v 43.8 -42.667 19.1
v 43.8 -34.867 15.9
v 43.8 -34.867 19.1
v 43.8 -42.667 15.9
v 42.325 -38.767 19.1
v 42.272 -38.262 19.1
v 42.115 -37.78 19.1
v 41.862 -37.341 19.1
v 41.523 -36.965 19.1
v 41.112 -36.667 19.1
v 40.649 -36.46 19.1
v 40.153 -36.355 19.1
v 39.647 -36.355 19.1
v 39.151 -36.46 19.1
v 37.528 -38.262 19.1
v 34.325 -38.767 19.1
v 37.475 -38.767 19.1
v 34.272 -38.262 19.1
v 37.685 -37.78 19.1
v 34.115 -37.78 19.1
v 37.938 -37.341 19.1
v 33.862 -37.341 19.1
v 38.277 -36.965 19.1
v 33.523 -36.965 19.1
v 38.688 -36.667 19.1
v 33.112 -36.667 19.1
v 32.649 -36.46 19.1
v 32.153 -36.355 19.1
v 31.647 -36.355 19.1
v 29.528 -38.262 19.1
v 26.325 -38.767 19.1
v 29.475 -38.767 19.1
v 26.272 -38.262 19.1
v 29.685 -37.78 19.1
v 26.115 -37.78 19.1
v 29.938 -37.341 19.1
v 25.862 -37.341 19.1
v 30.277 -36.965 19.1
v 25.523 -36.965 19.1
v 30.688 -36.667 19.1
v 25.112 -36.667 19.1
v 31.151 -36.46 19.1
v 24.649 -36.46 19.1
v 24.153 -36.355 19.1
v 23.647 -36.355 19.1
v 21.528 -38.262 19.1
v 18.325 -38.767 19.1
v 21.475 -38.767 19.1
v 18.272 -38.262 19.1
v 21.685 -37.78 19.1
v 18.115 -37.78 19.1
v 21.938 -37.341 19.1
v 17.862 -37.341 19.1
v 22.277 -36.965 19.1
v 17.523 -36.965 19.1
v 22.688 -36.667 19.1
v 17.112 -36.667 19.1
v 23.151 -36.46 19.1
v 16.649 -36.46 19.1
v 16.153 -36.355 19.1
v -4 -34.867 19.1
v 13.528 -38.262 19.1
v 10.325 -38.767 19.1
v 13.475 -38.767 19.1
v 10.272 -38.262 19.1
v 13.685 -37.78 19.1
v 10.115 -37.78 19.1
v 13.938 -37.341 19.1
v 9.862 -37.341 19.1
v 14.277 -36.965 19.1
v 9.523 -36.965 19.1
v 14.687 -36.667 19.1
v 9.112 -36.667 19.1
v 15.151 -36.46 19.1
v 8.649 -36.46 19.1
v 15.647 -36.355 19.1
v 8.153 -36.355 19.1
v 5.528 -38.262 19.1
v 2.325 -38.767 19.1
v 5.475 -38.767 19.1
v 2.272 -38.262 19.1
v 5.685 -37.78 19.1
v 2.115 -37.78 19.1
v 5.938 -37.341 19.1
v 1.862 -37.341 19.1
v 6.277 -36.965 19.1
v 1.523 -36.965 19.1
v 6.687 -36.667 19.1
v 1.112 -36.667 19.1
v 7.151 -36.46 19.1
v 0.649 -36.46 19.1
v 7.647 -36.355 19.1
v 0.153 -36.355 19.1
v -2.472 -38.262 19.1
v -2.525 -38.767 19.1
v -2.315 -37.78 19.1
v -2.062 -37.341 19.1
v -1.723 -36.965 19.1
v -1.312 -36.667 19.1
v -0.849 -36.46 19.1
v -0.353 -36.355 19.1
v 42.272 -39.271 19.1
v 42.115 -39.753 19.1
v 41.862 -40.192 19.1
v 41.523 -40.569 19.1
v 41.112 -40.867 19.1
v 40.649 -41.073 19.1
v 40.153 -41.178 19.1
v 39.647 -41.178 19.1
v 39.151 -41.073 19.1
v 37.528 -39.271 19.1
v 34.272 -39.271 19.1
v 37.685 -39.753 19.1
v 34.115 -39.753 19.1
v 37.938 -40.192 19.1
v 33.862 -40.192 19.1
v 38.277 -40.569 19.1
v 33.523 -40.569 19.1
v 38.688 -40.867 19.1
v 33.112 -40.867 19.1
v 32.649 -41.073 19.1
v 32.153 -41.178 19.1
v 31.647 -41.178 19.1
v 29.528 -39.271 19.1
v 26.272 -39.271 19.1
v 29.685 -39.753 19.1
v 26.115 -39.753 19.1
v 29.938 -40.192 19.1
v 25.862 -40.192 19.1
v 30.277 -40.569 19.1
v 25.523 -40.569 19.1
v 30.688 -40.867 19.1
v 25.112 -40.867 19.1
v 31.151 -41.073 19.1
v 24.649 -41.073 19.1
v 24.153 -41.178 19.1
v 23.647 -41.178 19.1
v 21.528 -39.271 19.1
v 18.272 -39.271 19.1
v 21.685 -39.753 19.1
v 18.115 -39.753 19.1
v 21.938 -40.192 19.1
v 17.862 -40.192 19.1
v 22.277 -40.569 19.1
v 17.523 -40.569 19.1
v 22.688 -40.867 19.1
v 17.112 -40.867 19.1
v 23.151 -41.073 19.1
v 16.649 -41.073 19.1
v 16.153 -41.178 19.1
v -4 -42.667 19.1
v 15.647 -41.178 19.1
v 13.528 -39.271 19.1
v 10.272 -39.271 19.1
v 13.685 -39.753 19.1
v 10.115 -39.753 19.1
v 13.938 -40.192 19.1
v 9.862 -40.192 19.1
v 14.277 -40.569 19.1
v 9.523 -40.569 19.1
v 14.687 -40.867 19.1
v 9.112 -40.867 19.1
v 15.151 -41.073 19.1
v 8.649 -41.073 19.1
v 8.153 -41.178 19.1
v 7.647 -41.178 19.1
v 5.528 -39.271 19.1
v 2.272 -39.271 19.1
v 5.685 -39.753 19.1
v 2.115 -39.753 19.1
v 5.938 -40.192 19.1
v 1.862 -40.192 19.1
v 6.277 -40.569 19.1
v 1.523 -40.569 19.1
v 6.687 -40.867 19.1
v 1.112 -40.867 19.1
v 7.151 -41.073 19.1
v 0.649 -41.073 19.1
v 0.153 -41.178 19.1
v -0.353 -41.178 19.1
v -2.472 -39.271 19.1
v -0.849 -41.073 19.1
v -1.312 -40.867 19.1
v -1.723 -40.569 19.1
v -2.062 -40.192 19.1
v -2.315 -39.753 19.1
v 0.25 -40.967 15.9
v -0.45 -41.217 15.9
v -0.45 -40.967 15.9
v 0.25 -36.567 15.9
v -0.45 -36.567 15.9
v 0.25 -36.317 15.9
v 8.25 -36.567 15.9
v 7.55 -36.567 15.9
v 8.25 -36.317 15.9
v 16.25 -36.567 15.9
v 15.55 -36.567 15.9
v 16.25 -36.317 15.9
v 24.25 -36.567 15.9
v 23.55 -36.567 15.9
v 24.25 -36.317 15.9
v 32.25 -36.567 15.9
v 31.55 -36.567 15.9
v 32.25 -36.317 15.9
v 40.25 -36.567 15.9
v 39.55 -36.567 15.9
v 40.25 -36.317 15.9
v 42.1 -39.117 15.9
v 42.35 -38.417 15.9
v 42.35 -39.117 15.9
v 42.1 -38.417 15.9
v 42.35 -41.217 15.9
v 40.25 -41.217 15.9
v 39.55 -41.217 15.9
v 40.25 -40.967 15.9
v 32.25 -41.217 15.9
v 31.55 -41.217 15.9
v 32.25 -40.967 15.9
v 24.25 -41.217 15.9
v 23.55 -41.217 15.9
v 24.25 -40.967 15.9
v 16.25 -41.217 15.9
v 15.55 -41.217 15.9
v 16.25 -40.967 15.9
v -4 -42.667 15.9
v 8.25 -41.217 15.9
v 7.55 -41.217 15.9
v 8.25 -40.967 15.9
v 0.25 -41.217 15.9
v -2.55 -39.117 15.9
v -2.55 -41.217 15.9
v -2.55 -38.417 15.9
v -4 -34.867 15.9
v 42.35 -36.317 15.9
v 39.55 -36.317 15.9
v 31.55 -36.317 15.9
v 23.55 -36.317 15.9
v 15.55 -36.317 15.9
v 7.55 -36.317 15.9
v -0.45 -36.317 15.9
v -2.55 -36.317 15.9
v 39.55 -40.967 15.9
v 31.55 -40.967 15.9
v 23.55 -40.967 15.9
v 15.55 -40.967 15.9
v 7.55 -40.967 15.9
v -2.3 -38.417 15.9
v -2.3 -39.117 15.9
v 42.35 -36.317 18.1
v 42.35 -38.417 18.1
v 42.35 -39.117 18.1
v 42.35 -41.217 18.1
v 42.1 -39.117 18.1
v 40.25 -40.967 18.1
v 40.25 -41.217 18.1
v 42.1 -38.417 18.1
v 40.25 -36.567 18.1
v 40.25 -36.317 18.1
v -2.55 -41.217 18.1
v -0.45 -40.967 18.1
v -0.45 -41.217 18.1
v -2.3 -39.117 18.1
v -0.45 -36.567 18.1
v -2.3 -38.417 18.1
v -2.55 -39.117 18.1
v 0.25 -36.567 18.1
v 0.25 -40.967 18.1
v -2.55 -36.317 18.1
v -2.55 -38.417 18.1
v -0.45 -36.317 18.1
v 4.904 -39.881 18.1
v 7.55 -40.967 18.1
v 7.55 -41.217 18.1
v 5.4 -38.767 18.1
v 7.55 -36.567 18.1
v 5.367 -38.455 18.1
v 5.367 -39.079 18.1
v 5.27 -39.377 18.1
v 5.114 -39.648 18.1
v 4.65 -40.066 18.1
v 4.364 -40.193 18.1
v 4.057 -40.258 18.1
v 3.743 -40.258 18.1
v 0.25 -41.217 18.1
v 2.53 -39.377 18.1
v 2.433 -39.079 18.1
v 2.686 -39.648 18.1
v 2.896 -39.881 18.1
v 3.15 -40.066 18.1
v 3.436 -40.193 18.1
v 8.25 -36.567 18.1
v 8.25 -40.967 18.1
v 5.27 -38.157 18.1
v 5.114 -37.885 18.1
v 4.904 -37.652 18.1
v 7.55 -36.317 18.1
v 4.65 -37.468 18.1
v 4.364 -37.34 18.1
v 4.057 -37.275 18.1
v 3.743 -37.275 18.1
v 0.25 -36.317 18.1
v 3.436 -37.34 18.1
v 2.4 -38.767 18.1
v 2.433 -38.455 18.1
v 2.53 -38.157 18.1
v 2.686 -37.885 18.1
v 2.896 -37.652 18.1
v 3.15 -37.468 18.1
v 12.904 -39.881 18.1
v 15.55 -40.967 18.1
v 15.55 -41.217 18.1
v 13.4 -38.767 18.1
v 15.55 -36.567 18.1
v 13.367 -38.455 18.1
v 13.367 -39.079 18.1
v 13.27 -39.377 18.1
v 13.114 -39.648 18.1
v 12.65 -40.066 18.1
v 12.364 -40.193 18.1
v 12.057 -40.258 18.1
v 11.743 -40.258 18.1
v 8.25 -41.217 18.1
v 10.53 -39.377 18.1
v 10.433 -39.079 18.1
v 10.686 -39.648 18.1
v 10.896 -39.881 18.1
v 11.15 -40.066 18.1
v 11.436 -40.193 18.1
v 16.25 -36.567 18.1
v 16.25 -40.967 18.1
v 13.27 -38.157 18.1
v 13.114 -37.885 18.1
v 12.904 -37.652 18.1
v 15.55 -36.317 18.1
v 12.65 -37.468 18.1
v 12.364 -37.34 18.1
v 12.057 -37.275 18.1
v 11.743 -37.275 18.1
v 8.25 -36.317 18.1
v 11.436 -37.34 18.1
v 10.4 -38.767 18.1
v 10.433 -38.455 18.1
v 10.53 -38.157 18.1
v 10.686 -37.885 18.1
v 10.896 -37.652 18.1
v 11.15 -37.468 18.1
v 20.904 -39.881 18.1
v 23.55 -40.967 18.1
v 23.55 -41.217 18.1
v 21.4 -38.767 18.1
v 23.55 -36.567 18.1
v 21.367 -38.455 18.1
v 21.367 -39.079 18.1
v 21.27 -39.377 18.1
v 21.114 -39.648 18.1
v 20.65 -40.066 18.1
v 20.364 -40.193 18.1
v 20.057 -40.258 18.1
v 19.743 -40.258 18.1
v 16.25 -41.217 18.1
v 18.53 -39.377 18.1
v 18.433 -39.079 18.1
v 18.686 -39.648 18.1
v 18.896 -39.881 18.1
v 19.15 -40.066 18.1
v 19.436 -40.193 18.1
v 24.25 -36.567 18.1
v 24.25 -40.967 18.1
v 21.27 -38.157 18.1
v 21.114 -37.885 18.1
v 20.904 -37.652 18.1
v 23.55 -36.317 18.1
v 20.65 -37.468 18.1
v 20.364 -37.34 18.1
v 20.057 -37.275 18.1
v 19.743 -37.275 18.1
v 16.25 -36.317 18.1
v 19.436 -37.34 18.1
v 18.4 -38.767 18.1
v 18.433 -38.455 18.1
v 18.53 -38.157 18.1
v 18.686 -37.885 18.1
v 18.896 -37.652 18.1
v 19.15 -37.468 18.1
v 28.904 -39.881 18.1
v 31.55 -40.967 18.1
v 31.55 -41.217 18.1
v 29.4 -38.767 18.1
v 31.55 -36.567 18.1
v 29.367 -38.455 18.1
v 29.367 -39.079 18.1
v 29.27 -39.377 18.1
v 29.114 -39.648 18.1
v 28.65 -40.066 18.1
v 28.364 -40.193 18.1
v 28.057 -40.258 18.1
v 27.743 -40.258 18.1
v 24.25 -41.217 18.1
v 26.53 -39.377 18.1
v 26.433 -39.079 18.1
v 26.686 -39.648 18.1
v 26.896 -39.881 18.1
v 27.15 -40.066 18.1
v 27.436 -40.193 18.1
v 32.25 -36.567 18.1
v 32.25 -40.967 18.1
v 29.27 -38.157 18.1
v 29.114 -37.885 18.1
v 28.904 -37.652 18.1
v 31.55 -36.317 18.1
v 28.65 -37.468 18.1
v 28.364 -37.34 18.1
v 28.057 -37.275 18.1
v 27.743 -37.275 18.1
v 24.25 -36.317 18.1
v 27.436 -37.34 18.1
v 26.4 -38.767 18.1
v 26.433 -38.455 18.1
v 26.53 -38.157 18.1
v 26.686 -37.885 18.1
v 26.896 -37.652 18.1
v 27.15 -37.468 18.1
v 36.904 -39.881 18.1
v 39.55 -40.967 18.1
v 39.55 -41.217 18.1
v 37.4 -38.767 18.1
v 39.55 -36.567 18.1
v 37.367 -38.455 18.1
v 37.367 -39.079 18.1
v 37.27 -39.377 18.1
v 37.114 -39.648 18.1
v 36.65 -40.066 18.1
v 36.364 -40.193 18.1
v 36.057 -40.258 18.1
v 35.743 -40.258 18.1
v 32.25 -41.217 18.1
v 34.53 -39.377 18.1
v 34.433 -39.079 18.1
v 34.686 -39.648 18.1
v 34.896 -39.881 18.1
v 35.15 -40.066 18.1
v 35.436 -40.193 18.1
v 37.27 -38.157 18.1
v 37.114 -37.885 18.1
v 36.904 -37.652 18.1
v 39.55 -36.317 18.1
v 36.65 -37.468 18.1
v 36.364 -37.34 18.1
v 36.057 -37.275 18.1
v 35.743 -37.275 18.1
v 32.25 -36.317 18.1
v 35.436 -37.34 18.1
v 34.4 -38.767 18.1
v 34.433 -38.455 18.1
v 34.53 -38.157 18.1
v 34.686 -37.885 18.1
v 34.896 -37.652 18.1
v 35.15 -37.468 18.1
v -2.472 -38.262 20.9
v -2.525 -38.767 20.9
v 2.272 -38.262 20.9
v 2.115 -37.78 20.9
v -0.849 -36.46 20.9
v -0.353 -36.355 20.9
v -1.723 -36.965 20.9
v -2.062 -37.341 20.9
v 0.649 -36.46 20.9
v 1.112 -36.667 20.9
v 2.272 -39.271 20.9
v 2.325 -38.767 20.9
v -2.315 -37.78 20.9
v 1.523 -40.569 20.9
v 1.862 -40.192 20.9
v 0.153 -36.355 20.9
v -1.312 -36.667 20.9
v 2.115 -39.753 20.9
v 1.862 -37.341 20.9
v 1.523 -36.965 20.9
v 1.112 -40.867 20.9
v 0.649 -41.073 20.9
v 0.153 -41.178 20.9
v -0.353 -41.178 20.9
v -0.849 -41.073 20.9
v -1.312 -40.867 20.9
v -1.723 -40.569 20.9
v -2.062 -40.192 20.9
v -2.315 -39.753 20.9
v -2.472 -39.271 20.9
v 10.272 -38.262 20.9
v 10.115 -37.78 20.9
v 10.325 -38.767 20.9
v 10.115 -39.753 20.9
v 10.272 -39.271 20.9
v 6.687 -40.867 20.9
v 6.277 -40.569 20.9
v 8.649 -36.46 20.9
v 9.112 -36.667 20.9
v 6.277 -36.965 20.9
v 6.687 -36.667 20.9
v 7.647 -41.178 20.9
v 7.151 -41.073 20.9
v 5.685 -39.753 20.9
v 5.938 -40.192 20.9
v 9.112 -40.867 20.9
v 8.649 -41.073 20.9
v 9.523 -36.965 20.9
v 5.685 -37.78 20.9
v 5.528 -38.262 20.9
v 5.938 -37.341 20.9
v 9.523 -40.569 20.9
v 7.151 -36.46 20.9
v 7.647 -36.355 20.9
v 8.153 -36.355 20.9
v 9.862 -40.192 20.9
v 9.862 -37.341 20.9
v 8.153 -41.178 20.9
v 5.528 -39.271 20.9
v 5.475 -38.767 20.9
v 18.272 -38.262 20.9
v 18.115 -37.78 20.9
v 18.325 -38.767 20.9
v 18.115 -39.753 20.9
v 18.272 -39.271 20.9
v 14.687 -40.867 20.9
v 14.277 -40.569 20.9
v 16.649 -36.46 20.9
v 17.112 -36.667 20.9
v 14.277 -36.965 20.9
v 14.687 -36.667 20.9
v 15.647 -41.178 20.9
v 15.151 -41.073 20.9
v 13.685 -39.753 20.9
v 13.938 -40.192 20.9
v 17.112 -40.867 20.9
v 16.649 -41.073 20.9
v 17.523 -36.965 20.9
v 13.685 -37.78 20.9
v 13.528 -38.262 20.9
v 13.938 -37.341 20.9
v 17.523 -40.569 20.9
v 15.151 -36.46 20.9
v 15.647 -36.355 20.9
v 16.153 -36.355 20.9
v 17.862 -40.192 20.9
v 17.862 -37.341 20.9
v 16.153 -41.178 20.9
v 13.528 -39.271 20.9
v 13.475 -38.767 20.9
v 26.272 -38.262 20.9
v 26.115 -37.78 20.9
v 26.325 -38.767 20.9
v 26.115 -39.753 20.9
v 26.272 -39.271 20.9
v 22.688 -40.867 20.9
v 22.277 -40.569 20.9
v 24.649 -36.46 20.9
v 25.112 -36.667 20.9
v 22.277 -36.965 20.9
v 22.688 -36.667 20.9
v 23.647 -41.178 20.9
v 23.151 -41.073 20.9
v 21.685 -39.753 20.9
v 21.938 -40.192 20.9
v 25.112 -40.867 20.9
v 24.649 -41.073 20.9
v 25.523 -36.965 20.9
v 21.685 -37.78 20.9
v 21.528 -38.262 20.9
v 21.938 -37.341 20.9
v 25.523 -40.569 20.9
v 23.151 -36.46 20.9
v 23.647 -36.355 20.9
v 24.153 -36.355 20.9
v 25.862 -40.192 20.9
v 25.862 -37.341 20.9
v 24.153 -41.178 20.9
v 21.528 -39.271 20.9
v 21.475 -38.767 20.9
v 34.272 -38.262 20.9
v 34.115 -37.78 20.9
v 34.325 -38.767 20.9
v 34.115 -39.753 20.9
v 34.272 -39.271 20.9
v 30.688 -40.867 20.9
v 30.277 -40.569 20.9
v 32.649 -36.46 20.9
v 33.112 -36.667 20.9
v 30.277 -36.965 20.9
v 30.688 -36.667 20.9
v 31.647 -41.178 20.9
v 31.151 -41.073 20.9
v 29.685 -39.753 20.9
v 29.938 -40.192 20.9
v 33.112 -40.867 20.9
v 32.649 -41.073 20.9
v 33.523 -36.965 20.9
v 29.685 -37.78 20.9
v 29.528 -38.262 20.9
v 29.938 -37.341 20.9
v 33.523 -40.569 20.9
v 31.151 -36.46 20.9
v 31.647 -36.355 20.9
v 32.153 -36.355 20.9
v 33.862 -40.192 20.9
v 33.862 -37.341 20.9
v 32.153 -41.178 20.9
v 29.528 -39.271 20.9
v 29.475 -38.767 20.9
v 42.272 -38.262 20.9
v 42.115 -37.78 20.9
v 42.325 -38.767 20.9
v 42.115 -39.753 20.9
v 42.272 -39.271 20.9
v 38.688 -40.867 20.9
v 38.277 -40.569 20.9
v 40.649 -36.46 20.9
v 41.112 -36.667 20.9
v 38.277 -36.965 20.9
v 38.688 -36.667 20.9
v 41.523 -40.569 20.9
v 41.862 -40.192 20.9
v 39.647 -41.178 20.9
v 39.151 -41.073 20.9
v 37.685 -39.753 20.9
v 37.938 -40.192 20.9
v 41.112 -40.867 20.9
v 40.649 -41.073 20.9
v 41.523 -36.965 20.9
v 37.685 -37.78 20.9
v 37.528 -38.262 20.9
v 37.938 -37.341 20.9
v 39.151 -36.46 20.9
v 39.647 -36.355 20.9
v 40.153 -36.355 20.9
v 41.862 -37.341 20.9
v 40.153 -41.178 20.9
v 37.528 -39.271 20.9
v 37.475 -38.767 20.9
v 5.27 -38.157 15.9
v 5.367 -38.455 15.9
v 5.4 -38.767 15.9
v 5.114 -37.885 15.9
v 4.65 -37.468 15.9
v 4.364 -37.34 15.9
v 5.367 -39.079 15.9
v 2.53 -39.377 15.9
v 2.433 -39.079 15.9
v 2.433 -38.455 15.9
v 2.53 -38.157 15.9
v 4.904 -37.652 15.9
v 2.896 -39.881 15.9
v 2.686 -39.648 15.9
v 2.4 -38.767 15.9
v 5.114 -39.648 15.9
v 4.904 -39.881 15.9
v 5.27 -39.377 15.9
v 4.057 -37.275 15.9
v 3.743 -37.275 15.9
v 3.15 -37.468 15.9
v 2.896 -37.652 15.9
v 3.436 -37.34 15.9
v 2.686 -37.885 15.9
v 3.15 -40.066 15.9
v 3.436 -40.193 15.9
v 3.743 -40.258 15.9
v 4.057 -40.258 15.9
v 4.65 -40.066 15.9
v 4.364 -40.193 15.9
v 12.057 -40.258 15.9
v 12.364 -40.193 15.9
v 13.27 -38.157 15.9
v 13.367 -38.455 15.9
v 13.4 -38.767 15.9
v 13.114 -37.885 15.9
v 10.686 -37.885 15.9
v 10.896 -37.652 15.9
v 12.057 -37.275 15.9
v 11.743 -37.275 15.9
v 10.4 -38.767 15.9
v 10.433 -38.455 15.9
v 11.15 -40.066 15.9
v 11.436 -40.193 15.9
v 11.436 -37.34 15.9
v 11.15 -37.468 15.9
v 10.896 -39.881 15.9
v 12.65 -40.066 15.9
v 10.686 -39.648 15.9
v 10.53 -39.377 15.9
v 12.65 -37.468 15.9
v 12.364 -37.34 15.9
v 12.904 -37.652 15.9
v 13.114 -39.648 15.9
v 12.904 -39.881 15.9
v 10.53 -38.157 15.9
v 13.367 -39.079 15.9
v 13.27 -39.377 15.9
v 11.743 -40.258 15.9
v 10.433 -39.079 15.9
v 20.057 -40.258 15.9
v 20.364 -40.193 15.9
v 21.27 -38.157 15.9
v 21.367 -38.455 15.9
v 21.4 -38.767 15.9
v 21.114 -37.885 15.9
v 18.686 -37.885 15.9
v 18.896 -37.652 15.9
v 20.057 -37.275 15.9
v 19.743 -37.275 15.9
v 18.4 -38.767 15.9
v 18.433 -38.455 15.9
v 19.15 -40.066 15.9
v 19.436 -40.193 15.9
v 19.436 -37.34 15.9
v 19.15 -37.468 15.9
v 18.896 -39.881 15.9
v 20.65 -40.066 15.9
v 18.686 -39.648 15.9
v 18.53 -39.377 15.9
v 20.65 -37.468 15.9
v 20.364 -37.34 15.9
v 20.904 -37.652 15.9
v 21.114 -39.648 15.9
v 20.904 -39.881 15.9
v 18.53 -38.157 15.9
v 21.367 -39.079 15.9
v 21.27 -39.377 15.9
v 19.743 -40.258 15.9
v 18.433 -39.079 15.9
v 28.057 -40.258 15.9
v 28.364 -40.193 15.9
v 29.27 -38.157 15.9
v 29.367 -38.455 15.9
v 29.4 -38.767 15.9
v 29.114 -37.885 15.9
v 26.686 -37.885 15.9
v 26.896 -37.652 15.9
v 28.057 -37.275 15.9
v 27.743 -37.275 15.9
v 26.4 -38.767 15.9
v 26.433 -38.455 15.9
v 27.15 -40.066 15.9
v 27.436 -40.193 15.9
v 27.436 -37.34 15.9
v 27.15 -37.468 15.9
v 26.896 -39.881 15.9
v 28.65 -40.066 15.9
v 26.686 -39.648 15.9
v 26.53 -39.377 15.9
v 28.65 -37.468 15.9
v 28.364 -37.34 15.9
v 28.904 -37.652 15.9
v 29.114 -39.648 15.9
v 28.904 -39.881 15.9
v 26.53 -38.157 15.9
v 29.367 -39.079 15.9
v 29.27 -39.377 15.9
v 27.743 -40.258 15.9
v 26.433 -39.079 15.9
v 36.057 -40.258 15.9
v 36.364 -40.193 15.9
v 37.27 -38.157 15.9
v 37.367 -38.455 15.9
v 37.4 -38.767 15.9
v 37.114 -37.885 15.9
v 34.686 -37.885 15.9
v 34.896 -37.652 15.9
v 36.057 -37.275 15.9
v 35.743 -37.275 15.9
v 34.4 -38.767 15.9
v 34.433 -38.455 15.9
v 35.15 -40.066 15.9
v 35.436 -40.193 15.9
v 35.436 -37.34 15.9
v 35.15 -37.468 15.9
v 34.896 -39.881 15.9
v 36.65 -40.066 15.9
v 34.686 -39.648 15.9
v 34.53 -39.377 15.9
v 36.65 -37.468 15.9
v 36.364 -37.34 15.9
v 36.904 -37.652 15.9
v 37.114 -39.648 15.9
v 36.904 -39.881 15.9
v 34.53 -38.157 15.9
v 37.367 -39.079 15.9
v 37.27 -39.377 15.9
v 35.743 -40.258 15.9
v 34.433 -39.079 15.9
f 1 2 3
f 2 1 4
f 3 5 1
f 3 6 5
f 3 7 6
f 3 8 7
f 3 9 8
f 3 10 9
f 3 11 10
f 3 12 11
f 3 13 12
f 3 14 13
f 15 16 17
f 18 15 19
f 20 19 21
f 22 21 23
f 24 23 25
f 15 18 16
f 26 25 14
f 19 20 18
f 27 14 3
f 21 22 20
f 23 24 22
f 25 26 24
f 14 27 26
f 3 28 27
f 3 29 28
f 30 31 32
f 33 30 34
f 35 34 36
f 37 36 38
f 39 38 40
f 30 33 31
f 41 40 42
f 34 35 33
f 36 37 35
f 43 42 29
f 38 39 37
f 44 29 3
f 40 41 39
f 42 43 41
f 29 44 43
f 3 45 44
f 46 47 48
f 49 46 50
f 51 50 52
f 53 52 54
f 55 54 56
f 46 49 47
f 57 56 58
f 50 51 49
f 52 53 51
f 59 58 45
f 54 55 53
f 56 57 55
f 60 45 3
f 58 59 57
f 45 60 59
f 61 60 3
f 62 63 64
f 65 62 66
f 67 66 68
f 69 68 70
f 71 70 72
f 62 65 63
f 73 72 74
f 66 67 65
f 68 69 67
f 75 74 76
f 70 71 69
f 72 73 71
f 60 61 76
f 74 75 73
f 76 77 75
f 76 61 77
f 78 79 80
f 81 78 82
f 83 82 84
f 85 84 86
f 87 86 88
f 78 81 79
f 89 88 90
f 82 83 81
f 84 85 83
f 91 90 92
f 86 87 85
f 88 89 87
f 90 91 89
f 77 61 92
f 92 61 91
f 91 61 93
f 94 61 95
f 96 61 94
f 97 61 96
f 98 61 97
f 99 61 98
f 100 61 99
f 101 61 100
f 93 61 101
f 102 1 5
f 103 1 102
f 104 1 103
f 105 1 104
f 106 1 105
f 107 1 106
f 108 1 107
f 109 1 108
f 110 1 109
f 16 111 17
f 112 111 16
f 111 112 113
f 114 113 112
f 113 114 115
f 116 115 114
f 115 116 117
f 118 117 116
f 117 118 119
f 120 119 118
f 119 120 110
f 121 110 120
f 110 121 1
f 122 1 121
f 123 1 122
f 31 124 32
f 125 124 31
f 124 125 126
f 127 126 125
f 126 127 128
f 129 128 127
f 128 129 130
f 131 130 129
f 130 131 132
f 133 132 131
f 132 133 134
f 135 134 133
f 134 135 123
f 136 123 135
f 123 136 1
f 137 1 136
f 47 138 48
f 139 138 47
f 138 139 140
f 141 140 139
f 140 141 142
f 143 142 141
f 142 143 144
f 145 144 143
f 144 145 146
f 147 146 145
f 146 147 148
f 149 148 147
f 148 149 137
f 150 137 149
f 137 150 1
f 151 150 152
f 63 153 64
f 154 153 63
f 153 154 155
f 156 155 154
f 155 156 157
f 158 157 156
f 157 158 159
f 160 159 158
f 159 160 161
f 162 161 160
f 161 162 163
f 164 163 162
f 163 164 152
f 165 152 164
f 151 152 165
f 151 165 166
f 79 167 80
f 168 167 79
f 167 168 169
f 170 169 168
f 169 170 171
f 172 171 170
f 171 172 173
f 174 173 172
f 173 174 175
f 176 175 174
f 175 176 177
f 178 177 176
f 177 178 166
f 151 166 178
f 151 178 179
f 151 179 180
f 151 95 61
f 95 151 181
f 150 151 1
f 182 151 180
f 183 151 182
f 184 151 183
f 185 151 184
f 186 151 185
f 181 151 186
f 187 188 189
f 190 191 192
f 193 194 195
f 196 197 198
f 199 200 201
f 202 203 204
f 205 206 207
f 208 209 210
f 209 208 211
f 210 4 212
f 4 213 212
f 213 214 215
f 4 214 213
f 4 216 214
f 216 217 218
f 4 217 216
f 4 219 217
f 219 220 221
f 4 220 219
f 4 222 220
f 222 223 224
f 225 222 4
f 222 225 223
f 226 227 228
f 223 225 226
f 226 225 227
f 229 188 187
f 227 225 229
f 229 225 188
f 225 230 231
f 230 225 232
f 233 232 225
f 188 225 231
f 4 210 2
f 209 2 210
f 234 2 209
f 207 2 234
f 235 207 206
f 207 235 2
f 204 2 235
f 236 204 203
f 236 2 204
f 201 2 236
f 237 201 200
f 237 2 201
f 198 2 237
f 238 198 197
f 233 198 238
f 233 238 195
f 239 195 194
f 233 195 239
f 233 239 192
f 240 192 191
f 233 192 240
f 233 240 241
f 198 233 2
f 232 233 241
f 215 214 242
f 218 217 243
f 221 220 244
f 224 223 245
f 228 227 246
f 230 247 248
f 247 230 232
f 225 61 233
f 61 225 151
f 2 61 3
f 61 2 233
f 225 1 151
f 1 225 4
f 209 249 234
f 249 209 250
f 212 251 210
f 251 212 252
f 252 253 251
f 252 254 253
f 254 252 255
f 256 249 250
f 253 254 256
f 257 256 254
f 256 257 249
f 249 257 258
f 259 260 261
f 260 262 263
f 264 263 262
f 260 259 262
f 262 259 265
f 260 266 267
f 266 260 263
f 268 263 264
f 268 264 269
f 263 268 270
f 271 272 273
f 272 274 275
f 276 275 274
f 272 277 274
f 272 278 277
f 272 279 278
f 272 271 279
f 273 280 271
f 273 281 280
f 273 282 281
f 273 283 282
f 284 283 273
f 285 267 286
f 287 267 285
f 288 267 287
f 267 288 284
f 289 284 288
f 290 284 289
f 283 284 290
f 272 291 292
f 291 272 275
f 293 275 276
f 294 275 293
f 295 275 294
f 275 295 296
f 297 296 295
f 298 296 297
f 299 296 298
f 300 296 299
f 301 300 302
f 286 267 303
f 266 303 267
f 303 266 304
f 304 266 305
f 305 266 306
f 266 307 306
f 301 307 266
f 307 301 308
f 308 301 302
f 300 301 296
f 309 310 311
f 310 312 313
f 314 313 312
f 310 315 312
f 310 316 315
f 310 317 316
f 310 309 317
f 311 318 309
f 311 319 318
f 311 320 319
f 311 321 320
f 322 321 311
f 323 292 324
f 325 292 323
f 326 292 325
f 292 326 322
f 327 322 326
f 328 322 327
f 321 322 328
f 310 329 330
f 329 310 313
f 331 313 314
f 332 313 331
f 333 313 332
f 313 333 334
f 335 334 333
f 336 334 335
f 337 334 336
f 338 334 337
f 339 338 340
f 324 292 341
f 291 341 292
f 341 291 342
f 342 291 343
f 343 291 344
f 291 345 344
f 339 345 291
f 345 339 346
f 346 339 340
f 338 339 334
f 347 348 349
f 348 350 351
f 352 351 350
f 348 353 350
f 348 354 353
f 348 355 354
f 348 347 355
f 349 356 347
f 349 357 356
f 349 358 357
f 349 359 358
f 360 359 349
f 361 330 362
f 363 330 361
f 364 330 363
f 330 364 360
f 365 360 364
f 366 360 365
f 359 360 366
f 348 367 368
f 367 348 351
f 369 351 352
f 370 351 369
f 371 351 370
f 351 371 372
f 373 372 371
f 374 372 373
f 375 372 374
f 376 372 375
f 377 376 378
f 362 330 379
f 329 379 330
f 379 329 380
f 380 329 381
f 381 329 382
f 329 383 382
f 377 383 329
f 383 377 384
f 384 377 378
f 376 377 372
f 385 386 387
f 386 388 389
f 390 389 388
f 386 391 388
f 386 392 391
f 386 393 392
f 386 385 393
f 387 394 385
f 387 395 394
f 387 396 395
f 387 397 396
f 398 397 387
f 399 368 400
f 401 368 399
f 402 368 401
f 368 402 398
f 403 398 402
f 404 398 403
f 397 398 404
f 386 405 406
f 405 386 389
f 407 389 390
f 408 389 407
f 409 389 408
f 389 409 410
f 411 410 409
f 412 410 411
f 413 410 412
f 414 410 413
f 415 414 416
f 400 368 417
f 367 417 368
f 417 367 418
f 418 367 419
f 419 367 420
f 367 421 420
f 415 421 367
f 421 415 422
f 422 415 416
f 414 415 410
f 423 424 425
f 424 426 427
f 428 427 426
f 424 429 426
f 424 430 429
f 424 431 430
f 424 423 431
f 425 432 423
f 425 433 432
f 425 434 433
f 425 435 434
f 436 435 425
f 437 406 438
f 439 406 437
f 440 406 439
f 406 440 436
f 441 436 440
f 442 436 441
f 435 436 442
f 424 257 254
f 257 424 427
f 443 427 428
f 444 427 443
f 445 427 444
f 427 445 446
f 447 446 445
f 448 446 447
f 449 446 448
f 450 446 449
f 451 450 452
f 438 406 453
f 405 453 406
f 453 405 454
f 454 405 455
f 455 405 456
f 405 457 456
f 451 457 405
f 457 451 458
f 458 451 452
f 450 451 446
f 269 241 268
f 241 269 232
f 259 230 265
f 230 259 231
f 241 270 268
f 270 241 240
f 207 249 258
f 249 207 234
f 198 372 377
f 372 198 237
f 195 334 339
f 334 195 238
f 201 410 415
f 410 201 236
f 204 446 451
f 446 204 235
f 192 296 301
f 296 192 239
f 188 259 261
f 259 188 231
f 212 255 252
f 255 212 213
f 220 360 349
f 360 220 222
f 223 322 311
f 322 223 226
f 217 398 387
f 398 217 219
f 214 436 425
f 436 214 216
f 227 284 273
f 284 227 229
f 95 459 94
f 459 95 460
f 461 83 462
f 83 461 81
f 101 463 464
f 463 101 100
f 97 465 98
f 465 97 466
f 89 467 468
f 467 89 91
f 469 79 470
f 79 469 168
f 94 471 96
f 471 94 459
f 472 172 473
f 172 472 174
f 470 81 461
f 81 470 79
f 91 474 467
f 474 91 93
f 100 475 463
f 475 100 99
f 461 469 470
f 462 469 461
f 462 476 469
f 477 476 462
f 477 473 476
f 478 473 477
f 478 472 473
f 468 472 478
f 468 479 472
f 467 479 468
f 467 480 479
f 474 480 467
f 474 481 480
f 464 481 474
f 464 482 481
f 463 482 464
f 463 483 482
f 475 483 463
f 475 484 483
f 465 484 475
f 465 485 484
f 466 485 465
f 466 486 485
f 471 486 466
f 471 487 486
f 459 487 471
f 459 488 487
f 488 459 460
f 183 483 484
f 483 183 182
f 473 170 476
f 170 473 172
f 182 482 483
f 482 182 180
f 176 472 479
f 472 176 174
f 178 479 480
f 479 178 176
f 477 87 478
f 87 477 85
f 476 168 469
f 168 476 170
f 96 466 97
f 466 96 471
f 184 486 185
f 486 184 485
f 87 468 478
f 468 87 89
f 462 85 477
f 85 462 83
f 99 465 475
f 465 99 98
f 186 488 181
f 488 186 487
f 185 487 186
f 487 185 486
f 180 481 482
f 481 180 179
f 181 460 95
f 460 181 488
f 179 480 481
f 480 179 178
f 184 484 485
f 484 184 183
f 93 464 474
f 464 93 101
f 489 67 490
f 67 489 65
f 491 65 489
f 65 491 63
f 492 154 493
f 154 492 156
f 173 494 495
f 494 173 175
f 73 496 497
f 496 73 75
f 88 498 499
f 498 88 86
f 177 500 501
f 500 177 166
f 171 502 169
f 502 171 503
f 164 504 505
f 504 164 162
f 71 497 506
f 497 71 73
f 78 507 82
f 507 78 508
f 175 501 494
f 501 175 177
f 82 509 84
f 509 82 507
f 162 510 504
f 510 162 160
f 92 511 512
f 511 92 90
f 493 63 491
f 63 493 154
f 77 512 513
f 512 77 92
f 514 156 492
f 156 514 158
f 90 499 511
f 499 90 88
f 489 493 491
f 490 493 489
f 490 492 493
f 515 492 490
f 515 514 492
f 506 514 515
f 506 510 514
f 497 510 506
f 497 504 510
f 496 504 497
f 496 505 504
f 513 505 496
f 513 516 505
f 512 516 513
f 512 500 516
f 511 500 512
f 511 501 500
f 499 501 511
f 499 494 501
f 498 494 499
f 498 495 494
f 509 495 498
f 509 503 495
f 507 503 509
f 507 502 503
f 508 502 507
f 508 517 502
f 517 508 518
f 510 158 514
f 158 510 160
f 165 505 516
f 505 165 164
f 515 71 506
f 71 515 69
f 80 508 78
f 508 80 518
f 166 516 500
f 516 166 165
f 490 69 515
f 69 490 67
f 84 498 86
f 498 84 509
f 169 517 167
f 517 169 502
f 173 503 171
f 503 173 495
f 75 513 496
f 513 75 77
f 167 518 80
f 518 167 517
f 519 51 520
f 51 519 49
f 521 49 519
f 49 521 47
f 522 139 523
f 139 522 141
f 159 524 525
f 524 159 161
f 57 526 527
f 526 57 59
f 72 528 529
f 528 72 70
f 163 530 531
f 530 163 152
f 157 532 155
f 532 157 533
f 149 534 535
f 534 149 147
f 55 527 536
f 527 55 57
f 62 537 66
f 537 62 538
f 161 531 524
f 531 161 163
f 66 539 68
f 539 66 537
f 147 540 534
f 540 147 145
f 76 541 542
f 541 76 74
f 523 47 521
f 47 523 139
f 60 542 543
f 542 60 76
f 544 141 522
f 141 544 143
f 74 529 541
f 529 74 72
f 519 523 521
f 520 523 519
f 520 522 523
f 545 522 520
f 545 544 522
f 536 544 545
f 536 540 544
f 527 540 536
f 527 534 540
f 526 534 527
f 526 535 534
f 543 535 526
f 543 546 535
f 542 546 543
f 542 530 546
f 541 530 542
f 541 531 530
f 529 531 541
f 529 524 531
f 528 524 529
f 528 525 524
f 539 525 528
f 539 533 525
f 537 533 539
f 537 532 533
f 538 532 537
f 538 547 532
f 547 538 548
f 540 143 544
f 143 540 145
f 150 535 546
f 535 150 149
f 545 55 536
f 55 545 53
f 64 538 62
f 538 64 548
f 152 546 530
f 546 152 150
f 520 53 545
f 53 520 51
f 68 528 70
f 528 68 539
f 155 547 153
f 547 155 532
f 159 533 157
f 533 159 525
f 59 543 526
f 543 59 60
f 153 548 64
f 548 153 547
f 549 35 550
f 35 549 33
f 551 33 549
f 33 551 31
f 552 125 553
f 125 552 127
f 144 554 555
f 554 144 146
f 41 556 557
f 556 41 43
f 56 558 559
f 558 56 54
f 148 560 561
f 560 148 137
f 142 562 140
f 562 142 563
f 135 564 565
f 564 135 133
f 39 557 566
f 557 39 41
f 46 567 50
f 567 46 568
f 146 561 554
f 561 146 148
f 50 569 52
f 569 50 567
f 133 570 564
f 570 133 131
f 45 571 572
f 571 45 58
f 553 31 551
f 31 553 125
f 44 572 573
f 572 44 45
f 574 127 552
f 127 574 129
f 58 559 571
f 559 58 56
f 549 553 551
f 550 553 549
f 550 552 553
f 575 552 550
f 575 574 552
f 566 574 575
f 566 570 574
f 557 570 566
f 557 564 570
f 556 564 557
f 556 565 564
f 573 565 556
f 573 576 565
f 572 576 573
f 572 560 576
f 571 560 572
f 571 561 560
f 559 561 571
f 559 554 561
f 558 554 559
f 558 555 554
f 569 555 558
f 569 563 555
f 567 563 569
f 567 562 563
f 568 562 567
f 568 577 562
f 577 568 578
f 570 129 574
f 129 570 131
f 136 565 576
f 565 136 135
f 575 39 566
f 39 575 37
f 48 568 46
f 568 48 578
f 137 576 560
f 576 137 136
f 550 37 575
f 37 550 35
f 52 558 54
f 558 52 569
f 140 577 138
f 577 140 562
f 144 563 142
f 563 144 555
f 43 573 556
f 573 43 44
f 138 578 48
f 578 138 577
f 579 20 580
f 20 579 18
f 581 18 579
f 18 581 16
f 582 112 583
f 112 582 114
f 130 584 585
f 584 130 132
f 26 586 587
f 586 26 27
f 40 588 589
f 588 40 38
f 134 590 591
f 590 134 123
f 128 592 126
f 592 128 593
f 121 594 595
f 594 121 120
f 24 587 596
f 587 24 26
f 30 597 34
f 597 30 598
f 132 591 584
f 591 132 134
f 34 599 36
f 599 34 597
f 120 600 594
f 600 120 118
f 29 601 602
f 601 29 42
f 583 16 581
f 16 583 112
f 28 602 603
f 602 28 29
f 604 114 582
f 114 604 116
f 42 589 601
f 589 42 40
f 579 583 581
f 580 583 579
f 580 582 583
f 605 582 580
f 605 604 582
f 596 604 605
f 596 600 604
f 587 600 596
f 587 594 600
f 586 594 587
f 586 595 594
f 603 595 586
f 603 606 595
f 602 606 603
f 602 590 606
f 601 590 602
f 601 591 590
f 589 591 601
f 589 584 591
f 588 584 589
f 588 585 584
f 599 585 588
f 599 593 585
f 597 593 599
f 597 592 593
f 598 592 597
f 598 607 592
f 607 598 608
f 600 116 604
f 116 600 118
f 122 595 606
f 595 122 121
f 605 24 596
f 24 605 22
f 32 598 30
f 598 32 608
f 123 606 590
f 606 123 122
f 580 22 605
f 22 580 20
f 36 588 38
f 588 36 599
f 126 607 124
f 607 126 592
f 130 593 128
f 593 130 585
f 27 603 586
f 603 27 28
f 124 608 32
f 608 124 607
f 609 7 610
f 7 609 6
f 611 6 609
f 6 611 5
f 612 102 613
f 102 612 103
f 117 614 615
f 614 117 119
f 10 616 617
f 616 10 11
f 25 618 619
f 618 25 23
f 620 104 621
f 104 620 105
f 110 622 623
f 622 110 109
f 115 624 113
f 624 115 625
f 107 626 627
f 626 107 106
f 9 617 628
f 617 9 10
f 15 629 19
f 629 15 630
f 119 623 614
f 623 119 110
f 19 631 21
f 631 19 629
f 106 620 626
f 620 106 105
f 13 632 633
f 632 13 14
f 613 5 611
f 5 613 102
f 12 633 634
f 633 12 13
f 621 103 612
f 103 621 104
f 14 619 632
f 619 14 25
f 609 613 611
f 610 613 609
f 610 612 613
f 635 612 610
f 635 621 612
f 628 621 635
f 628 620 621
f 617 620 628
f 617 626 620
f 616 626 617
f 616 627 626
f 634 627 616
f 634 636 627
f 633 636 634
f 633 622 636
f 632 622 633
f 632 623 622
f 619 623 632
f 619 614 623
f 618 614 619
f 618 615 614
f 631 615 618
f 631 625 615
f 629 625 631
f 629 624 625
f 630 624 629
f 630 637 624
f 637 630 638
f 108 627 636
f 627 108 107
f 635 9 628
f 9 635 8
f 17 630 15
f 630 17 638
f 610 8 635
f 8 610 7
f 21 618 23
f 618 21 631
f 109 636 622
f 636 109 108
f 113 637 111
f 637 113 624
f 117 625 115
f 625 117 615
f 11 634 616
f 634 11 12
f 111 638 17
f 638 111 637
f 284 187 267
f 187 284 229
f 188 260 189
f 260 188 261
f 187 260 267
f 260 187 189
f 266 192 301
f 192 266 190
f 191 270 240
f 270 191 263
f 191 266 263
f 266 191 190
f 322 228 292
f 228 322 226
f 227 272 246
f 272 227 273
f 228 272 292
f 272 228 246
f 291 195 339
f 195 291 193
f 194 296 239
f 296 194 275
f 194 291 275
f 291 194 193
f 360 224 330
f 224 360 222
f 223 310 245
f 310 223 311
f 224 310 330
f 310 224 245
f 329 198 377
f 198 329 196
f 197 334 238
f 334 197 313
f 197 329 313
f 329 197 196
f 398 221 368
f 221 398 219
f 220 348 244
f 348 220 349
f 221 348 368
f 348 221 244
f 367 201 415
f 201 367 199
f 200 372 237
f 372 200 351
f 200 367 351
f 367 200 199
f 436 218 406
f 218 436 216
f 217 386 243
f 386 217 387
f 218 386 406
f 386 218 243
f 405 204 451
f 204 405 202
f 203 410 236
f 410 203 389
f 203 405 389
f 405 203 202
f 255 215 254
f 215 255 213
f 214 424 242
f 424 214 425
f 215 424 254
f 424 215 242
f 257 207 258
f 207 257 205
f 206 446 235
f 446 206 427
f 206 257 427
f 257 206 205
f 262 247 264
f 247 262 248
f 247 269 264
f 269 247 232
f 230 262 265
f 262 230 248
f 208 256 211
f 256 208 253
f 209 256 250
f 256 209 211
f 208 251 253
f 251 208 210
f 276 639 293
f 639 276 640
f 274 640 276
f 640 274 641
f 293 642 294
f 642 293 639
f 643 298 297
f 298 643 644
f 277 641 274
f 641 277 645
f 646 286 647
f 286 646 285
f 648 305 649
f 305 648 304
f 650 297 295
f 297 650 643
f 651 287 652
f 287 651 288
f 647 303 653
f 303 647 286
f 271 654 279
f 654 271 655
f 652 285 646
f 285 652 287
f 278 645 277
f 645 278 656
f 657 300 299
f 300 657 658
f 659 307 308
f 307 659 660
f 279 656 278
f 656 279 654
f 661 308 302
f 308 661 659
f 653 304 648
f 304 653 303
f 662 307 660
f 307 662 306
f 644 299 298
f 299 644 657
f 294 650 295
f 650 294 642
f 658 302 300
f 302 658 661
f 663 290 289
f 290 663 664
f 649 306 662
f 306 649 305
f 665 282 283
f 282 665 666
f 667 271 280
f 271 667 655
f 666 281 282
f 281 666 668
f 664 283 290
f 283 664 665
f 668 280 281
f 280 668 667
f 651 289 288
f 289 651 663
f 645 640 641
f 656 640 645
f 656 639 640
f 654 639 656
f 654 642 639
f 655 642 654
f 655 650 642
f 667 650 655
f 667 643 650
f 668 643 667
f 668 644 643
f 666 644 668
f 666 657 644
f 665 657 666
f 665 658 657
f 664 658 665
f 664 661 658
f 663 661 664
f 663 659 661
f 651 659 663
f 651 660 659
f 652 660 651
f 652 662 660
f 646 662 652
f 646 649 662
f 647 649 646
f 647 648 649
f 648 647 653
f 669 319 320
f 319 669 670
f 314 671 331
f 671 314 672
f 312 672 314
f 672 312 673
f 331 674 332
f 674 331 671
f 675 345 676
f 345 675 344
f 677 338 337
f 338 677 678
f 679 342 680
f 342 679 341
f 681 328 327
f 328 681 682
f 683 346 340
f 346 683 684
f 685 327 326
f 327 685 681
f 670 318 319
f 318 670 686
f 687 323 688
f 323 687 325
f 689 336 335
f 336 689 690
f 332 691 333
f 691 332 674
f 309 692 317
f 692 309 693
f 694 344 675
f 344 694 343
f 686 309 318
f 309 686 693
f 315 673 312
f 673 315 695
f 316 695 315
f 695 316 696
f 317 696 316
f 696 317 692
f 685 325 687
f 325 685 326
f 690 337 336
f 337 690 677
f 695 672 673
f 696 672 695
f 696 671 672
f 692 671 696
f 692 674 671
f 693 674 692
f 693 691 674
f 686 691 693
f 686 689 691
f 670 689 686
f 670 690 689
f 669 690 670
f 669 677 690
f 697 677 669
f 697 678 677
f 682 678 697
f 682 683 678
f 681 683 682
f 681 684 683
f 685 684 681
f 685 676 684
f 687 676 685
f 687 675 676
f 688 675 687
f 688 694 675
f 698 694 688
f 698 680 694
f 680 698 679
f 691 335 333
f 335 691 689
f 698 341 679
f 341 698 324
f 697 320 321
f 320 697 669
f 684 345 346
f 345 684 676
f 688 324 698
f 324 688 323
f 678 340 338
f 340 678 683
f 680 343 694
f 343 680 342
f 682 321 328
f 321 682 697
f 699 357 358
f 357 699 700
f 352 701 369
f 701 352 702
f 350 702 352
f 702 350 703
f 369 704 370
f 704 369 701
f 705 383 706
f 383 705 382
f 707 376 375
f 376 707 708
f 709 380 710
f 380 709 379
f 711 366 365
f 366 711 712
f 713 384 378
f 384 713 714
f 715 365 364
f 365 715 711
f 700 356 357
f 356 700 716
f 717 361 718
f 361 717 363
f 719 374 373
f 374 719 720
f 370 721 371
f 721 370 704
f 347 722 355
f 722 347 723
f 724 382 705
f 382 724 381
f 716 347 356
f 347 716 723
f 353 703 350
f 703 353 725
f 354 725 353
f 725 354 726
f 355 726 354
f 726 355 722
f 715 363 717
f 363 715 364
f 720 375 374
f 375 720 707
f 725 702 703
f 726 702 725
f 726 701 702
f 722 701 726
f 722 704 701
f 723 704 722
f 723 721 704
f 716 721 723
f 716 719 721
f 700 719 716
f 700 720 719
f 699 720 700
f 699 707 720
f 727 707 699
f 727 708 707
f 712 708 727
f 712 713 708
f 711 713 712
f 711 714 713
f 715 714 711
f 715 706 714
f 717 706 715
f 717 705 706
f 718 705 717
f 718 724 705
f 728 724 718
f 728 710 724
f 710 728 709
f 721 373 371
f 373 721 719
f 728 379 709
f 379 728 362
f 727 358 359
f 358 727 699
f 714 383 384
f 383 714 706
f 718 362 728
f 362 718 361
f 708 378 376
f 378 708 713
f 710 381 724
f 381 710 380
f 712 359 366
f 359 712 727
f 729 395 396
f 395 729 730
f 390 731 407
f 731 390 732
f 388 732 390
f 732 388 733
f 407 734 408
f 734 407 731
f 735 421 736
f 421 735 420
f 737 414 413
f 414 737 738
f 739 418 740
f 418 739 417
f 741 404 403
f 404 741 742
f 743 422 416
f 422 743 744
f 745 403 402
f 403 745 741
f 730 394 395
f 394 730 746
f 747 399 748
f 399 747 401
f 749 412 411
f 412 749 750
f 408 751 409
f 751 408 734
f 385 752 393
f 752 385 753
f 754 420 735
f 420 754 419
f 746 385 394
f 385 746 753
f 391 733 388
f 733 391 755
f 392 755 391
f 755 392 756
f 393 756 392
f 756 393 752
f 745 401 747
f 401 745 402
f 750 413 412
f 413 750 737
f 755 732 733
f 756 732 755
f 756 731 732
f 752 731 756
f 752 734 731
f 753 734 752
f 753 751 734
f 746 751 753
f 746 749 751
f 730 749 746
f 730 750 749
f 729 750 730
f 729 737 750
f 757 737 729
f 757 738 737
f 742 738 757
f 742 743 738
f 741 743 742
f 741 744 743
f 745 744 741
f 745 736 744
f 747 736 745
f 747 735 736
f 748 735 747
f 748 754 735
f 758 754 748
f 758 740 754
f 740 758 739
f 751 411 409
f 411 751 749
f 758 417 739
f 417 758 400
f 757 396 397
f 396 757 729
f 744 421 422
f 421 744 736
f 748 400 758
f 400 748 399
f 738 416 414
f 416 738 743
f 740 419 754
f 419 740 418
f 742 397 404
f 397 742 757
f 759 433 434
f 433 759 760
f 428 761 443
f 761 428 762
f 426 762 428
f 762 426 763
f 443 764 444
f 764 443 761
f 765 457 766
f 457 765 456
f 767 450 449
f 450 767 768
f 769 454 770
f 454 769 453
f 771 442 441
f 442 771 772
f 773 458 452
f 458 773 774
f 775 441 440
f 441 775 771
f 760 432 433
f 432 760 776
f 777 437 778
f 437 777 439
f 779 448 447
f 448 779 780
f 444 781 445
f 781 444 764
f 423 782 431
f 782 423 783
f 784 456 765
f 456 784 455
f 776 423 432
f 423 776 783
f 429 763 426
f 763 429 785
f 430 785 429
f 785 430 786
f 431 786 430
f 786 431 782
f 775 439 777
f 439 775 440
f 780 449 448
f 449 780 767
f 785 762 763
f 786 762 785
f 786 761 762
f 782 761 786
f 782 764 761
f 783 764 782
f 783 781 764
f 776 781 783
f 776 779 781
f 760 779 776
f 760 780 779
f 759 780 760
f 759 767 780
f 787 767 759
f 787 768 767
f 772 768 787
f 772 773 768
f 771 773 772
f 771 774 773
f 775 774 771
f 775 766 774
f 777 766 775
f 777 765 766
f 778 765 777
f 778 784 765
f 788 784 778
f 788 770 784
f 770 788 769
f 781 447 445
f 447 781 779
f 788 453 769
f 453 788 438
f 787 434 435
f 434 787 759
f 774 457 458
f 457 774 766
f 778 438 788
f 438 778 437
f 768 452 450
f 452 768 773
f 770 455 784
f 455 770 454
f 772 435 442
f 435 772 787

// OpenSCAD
include <LEGO.scad>;
color( "grey" ) place(-5, -5, 0) uncenter(1/3, 15, 4) rotate([0, 0, 0]) block(
            dual_sided=false,
            width=1,
            length=6,
            height=1/3
        );
